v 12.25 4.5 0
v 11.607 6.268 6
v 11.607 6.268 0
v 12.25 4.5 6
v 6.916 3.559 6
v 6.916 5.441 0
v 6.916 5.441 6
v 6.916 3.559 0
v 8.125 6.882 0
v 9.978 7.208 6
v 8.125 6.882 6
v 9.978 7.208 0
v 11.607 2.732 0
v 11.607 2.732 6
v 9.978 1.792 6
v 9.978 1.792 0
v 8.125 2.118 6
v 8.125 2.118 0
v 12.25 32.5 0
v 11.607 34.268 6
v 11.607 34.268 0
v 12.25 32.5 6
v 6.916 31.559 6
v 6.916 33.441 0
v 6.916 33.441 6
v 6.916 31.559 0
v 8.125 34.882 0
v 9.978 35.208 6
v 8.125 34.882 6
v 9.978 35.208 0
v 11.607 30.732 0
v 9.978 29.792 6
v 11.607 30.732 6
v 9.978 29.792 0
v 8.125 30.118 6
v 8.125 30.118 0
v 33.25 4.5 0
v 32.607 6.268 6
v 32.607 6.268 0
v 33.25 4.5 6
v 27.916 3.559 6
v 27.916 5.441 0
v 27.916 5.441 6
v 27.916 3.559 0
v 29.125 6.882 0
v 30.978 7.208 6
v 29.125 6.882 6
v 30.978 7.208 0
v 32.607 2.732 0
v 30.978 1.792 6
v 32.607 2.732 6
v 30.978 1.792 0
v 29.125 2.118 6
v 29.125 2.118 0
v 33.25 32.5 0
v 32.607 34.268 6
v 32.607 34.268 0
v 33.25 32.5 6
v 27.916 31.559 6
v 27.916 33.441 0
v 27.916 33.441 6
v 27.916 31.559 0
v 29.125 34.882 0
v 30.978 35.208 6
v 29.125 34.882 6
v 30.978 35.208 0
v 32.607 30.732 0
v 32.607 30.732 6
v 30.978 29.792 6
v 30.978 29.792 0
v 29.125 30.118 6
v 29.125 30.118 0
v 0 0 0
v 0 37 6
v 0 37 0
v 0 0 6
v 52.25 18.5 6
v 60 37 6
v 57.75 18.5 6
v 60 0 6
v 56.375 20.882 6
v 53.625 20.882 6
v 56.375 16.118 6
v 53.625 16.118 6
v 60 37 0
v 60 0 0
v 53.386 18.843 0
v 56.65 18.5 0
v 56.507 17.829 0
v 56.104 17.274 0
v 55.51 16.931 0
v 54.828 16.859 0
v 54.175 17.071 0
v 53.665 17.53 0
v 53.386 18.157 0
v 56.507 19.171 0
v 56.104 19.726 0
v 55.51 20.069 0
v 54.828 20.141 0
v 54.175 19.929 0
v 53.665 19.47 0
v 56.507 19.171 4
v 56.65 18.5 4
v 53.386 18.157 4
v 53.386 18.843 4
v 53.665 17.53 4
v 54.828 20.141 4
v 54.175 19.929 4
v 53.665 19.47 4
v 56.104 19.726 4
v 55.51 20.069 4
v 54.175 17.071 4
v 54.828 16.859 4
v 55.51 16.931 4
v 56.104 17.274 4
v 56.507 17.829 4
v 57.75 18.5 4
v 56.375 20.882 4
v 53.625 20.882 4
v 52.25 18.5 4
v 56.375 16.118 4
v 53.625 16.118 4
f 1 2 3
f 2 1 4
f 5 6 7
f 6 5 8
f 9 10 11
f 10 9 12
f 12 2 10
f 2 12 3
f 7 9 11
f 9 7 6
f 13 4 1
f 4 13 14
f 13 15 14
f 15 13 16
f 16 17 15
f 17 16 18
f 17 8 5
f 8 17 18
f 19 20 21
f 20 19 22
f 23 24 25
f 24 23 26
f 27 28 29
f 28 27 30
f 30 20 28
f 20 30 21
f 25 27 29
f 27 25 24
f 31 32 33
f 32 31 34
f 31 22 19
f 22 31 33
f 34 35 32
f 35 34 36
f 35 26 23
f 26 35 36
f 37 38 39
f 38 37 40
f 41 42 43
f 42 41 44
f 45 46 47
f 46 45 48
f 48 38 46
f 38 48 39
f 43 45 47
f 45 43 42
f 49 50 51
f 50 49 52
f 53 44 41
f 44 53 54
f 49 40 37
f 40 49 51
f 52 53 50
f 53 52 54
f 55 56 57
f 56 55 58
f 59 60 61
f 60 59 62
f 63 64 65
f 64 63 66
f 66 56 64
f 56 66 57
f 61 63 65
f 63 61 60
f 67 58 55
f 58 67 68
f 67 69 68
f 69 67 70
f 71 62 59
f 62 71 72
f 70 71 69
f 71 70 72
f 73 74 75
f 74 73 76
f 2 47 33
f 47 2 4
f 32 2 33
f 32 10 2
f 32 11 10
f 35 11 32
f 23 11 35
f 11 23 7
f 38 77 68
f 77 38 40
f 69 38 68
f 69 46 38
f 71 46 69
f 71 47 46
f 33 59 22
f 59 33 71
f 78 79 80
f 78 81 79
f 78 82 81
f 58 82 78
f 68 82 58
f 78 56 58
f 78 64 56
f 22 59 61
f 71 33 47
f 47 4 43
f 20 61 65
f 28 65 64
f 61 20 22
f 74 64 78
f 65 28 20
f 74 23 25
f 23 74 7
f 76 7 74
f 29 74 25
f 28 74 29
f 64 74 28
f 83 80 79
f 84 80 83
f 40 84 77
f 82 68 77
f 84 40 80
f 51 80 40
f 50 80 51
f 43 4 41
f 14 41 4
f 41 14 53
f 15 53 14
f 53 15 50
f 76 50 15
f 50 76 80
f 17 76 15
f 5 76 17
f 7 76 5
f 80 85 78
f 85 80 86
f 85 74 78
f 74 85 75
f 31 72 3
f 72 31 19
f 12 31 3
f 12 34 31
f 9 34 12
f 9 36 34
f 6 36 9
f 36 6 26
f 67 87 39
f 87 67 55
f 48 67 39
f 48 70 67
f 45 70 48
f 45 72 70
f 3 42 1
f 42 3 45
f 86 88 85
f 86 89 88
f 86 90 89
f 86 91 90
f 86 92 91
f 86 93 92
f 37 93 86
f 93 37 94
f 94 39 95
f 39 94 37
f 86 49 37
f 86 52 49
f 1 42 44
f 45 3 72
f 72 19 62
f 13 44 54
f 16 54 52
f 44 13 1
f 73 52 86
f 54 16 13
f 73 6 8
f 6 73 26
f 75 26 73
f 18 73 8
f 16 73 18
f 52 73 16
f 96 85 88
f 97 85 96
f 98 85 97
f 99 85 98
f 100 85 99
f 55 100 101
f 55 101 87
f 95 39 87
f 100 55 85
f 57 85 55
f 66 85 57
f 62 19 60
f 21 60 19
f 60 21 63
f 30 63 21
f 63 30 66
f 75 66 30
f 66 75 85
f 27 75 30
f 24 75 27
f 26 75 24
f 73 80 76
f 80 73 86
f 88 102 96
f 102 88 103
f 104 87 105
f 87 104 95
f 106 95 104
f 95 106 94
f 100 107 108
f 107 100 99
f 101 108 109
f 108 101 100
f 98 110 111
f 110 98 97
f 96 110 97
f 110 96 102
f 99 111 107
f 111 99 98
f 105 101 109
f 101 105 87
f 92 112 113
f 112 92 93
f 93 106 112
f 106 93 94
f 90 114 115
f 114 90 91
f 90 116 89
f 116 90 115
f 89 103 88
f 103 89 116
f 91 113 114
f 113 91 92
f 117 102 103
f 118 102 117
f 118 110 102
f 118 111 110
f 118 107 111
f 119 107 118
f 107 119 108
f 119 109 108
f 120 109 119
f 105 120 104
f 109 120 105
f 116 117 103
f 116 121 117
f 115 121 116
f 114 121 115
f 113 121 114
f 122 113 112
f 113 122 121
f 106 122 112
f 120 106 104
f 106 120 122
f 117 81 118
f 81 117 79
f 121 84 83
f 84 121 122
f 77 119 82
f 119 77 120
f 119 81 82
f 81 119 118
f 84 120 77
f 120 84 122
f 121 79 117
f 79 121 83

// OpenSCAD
/**
 * YPlateSide.scad
 * 
 * Created by Diego Viejo
 * 04/May/2016
 * 
 */

//SC10UU dimmensions
SCWidth = 40;
SCHoleX = 21;
SCLength = 35 + 2;
SCHoleY = 28;
SCHoleDiam = 5 + 0.5;


Width = 60;
Length = SCLength;
Height = 6;


mainBlock();

module mainBlock()
difference()
{
    cube([Width, Length, Height]);
    
    for(i = [-1, 1]) for(j = [-1, 1])
        translate([(SCWidth+i*SCHoleX)/2, (SCLength+j*SCHoleY)/2, -1]) cylinder(d=SCHoleDiam, h=Height+2);
    
    translate([Width-5, Length/2, -1]) cylinder(d=3.3, h=Height+2, $fn=15);
    translate([Width-5, Length/2, Height-2]) cylinder(d=5.5, h=Height+2, $fn=6);
    
}
